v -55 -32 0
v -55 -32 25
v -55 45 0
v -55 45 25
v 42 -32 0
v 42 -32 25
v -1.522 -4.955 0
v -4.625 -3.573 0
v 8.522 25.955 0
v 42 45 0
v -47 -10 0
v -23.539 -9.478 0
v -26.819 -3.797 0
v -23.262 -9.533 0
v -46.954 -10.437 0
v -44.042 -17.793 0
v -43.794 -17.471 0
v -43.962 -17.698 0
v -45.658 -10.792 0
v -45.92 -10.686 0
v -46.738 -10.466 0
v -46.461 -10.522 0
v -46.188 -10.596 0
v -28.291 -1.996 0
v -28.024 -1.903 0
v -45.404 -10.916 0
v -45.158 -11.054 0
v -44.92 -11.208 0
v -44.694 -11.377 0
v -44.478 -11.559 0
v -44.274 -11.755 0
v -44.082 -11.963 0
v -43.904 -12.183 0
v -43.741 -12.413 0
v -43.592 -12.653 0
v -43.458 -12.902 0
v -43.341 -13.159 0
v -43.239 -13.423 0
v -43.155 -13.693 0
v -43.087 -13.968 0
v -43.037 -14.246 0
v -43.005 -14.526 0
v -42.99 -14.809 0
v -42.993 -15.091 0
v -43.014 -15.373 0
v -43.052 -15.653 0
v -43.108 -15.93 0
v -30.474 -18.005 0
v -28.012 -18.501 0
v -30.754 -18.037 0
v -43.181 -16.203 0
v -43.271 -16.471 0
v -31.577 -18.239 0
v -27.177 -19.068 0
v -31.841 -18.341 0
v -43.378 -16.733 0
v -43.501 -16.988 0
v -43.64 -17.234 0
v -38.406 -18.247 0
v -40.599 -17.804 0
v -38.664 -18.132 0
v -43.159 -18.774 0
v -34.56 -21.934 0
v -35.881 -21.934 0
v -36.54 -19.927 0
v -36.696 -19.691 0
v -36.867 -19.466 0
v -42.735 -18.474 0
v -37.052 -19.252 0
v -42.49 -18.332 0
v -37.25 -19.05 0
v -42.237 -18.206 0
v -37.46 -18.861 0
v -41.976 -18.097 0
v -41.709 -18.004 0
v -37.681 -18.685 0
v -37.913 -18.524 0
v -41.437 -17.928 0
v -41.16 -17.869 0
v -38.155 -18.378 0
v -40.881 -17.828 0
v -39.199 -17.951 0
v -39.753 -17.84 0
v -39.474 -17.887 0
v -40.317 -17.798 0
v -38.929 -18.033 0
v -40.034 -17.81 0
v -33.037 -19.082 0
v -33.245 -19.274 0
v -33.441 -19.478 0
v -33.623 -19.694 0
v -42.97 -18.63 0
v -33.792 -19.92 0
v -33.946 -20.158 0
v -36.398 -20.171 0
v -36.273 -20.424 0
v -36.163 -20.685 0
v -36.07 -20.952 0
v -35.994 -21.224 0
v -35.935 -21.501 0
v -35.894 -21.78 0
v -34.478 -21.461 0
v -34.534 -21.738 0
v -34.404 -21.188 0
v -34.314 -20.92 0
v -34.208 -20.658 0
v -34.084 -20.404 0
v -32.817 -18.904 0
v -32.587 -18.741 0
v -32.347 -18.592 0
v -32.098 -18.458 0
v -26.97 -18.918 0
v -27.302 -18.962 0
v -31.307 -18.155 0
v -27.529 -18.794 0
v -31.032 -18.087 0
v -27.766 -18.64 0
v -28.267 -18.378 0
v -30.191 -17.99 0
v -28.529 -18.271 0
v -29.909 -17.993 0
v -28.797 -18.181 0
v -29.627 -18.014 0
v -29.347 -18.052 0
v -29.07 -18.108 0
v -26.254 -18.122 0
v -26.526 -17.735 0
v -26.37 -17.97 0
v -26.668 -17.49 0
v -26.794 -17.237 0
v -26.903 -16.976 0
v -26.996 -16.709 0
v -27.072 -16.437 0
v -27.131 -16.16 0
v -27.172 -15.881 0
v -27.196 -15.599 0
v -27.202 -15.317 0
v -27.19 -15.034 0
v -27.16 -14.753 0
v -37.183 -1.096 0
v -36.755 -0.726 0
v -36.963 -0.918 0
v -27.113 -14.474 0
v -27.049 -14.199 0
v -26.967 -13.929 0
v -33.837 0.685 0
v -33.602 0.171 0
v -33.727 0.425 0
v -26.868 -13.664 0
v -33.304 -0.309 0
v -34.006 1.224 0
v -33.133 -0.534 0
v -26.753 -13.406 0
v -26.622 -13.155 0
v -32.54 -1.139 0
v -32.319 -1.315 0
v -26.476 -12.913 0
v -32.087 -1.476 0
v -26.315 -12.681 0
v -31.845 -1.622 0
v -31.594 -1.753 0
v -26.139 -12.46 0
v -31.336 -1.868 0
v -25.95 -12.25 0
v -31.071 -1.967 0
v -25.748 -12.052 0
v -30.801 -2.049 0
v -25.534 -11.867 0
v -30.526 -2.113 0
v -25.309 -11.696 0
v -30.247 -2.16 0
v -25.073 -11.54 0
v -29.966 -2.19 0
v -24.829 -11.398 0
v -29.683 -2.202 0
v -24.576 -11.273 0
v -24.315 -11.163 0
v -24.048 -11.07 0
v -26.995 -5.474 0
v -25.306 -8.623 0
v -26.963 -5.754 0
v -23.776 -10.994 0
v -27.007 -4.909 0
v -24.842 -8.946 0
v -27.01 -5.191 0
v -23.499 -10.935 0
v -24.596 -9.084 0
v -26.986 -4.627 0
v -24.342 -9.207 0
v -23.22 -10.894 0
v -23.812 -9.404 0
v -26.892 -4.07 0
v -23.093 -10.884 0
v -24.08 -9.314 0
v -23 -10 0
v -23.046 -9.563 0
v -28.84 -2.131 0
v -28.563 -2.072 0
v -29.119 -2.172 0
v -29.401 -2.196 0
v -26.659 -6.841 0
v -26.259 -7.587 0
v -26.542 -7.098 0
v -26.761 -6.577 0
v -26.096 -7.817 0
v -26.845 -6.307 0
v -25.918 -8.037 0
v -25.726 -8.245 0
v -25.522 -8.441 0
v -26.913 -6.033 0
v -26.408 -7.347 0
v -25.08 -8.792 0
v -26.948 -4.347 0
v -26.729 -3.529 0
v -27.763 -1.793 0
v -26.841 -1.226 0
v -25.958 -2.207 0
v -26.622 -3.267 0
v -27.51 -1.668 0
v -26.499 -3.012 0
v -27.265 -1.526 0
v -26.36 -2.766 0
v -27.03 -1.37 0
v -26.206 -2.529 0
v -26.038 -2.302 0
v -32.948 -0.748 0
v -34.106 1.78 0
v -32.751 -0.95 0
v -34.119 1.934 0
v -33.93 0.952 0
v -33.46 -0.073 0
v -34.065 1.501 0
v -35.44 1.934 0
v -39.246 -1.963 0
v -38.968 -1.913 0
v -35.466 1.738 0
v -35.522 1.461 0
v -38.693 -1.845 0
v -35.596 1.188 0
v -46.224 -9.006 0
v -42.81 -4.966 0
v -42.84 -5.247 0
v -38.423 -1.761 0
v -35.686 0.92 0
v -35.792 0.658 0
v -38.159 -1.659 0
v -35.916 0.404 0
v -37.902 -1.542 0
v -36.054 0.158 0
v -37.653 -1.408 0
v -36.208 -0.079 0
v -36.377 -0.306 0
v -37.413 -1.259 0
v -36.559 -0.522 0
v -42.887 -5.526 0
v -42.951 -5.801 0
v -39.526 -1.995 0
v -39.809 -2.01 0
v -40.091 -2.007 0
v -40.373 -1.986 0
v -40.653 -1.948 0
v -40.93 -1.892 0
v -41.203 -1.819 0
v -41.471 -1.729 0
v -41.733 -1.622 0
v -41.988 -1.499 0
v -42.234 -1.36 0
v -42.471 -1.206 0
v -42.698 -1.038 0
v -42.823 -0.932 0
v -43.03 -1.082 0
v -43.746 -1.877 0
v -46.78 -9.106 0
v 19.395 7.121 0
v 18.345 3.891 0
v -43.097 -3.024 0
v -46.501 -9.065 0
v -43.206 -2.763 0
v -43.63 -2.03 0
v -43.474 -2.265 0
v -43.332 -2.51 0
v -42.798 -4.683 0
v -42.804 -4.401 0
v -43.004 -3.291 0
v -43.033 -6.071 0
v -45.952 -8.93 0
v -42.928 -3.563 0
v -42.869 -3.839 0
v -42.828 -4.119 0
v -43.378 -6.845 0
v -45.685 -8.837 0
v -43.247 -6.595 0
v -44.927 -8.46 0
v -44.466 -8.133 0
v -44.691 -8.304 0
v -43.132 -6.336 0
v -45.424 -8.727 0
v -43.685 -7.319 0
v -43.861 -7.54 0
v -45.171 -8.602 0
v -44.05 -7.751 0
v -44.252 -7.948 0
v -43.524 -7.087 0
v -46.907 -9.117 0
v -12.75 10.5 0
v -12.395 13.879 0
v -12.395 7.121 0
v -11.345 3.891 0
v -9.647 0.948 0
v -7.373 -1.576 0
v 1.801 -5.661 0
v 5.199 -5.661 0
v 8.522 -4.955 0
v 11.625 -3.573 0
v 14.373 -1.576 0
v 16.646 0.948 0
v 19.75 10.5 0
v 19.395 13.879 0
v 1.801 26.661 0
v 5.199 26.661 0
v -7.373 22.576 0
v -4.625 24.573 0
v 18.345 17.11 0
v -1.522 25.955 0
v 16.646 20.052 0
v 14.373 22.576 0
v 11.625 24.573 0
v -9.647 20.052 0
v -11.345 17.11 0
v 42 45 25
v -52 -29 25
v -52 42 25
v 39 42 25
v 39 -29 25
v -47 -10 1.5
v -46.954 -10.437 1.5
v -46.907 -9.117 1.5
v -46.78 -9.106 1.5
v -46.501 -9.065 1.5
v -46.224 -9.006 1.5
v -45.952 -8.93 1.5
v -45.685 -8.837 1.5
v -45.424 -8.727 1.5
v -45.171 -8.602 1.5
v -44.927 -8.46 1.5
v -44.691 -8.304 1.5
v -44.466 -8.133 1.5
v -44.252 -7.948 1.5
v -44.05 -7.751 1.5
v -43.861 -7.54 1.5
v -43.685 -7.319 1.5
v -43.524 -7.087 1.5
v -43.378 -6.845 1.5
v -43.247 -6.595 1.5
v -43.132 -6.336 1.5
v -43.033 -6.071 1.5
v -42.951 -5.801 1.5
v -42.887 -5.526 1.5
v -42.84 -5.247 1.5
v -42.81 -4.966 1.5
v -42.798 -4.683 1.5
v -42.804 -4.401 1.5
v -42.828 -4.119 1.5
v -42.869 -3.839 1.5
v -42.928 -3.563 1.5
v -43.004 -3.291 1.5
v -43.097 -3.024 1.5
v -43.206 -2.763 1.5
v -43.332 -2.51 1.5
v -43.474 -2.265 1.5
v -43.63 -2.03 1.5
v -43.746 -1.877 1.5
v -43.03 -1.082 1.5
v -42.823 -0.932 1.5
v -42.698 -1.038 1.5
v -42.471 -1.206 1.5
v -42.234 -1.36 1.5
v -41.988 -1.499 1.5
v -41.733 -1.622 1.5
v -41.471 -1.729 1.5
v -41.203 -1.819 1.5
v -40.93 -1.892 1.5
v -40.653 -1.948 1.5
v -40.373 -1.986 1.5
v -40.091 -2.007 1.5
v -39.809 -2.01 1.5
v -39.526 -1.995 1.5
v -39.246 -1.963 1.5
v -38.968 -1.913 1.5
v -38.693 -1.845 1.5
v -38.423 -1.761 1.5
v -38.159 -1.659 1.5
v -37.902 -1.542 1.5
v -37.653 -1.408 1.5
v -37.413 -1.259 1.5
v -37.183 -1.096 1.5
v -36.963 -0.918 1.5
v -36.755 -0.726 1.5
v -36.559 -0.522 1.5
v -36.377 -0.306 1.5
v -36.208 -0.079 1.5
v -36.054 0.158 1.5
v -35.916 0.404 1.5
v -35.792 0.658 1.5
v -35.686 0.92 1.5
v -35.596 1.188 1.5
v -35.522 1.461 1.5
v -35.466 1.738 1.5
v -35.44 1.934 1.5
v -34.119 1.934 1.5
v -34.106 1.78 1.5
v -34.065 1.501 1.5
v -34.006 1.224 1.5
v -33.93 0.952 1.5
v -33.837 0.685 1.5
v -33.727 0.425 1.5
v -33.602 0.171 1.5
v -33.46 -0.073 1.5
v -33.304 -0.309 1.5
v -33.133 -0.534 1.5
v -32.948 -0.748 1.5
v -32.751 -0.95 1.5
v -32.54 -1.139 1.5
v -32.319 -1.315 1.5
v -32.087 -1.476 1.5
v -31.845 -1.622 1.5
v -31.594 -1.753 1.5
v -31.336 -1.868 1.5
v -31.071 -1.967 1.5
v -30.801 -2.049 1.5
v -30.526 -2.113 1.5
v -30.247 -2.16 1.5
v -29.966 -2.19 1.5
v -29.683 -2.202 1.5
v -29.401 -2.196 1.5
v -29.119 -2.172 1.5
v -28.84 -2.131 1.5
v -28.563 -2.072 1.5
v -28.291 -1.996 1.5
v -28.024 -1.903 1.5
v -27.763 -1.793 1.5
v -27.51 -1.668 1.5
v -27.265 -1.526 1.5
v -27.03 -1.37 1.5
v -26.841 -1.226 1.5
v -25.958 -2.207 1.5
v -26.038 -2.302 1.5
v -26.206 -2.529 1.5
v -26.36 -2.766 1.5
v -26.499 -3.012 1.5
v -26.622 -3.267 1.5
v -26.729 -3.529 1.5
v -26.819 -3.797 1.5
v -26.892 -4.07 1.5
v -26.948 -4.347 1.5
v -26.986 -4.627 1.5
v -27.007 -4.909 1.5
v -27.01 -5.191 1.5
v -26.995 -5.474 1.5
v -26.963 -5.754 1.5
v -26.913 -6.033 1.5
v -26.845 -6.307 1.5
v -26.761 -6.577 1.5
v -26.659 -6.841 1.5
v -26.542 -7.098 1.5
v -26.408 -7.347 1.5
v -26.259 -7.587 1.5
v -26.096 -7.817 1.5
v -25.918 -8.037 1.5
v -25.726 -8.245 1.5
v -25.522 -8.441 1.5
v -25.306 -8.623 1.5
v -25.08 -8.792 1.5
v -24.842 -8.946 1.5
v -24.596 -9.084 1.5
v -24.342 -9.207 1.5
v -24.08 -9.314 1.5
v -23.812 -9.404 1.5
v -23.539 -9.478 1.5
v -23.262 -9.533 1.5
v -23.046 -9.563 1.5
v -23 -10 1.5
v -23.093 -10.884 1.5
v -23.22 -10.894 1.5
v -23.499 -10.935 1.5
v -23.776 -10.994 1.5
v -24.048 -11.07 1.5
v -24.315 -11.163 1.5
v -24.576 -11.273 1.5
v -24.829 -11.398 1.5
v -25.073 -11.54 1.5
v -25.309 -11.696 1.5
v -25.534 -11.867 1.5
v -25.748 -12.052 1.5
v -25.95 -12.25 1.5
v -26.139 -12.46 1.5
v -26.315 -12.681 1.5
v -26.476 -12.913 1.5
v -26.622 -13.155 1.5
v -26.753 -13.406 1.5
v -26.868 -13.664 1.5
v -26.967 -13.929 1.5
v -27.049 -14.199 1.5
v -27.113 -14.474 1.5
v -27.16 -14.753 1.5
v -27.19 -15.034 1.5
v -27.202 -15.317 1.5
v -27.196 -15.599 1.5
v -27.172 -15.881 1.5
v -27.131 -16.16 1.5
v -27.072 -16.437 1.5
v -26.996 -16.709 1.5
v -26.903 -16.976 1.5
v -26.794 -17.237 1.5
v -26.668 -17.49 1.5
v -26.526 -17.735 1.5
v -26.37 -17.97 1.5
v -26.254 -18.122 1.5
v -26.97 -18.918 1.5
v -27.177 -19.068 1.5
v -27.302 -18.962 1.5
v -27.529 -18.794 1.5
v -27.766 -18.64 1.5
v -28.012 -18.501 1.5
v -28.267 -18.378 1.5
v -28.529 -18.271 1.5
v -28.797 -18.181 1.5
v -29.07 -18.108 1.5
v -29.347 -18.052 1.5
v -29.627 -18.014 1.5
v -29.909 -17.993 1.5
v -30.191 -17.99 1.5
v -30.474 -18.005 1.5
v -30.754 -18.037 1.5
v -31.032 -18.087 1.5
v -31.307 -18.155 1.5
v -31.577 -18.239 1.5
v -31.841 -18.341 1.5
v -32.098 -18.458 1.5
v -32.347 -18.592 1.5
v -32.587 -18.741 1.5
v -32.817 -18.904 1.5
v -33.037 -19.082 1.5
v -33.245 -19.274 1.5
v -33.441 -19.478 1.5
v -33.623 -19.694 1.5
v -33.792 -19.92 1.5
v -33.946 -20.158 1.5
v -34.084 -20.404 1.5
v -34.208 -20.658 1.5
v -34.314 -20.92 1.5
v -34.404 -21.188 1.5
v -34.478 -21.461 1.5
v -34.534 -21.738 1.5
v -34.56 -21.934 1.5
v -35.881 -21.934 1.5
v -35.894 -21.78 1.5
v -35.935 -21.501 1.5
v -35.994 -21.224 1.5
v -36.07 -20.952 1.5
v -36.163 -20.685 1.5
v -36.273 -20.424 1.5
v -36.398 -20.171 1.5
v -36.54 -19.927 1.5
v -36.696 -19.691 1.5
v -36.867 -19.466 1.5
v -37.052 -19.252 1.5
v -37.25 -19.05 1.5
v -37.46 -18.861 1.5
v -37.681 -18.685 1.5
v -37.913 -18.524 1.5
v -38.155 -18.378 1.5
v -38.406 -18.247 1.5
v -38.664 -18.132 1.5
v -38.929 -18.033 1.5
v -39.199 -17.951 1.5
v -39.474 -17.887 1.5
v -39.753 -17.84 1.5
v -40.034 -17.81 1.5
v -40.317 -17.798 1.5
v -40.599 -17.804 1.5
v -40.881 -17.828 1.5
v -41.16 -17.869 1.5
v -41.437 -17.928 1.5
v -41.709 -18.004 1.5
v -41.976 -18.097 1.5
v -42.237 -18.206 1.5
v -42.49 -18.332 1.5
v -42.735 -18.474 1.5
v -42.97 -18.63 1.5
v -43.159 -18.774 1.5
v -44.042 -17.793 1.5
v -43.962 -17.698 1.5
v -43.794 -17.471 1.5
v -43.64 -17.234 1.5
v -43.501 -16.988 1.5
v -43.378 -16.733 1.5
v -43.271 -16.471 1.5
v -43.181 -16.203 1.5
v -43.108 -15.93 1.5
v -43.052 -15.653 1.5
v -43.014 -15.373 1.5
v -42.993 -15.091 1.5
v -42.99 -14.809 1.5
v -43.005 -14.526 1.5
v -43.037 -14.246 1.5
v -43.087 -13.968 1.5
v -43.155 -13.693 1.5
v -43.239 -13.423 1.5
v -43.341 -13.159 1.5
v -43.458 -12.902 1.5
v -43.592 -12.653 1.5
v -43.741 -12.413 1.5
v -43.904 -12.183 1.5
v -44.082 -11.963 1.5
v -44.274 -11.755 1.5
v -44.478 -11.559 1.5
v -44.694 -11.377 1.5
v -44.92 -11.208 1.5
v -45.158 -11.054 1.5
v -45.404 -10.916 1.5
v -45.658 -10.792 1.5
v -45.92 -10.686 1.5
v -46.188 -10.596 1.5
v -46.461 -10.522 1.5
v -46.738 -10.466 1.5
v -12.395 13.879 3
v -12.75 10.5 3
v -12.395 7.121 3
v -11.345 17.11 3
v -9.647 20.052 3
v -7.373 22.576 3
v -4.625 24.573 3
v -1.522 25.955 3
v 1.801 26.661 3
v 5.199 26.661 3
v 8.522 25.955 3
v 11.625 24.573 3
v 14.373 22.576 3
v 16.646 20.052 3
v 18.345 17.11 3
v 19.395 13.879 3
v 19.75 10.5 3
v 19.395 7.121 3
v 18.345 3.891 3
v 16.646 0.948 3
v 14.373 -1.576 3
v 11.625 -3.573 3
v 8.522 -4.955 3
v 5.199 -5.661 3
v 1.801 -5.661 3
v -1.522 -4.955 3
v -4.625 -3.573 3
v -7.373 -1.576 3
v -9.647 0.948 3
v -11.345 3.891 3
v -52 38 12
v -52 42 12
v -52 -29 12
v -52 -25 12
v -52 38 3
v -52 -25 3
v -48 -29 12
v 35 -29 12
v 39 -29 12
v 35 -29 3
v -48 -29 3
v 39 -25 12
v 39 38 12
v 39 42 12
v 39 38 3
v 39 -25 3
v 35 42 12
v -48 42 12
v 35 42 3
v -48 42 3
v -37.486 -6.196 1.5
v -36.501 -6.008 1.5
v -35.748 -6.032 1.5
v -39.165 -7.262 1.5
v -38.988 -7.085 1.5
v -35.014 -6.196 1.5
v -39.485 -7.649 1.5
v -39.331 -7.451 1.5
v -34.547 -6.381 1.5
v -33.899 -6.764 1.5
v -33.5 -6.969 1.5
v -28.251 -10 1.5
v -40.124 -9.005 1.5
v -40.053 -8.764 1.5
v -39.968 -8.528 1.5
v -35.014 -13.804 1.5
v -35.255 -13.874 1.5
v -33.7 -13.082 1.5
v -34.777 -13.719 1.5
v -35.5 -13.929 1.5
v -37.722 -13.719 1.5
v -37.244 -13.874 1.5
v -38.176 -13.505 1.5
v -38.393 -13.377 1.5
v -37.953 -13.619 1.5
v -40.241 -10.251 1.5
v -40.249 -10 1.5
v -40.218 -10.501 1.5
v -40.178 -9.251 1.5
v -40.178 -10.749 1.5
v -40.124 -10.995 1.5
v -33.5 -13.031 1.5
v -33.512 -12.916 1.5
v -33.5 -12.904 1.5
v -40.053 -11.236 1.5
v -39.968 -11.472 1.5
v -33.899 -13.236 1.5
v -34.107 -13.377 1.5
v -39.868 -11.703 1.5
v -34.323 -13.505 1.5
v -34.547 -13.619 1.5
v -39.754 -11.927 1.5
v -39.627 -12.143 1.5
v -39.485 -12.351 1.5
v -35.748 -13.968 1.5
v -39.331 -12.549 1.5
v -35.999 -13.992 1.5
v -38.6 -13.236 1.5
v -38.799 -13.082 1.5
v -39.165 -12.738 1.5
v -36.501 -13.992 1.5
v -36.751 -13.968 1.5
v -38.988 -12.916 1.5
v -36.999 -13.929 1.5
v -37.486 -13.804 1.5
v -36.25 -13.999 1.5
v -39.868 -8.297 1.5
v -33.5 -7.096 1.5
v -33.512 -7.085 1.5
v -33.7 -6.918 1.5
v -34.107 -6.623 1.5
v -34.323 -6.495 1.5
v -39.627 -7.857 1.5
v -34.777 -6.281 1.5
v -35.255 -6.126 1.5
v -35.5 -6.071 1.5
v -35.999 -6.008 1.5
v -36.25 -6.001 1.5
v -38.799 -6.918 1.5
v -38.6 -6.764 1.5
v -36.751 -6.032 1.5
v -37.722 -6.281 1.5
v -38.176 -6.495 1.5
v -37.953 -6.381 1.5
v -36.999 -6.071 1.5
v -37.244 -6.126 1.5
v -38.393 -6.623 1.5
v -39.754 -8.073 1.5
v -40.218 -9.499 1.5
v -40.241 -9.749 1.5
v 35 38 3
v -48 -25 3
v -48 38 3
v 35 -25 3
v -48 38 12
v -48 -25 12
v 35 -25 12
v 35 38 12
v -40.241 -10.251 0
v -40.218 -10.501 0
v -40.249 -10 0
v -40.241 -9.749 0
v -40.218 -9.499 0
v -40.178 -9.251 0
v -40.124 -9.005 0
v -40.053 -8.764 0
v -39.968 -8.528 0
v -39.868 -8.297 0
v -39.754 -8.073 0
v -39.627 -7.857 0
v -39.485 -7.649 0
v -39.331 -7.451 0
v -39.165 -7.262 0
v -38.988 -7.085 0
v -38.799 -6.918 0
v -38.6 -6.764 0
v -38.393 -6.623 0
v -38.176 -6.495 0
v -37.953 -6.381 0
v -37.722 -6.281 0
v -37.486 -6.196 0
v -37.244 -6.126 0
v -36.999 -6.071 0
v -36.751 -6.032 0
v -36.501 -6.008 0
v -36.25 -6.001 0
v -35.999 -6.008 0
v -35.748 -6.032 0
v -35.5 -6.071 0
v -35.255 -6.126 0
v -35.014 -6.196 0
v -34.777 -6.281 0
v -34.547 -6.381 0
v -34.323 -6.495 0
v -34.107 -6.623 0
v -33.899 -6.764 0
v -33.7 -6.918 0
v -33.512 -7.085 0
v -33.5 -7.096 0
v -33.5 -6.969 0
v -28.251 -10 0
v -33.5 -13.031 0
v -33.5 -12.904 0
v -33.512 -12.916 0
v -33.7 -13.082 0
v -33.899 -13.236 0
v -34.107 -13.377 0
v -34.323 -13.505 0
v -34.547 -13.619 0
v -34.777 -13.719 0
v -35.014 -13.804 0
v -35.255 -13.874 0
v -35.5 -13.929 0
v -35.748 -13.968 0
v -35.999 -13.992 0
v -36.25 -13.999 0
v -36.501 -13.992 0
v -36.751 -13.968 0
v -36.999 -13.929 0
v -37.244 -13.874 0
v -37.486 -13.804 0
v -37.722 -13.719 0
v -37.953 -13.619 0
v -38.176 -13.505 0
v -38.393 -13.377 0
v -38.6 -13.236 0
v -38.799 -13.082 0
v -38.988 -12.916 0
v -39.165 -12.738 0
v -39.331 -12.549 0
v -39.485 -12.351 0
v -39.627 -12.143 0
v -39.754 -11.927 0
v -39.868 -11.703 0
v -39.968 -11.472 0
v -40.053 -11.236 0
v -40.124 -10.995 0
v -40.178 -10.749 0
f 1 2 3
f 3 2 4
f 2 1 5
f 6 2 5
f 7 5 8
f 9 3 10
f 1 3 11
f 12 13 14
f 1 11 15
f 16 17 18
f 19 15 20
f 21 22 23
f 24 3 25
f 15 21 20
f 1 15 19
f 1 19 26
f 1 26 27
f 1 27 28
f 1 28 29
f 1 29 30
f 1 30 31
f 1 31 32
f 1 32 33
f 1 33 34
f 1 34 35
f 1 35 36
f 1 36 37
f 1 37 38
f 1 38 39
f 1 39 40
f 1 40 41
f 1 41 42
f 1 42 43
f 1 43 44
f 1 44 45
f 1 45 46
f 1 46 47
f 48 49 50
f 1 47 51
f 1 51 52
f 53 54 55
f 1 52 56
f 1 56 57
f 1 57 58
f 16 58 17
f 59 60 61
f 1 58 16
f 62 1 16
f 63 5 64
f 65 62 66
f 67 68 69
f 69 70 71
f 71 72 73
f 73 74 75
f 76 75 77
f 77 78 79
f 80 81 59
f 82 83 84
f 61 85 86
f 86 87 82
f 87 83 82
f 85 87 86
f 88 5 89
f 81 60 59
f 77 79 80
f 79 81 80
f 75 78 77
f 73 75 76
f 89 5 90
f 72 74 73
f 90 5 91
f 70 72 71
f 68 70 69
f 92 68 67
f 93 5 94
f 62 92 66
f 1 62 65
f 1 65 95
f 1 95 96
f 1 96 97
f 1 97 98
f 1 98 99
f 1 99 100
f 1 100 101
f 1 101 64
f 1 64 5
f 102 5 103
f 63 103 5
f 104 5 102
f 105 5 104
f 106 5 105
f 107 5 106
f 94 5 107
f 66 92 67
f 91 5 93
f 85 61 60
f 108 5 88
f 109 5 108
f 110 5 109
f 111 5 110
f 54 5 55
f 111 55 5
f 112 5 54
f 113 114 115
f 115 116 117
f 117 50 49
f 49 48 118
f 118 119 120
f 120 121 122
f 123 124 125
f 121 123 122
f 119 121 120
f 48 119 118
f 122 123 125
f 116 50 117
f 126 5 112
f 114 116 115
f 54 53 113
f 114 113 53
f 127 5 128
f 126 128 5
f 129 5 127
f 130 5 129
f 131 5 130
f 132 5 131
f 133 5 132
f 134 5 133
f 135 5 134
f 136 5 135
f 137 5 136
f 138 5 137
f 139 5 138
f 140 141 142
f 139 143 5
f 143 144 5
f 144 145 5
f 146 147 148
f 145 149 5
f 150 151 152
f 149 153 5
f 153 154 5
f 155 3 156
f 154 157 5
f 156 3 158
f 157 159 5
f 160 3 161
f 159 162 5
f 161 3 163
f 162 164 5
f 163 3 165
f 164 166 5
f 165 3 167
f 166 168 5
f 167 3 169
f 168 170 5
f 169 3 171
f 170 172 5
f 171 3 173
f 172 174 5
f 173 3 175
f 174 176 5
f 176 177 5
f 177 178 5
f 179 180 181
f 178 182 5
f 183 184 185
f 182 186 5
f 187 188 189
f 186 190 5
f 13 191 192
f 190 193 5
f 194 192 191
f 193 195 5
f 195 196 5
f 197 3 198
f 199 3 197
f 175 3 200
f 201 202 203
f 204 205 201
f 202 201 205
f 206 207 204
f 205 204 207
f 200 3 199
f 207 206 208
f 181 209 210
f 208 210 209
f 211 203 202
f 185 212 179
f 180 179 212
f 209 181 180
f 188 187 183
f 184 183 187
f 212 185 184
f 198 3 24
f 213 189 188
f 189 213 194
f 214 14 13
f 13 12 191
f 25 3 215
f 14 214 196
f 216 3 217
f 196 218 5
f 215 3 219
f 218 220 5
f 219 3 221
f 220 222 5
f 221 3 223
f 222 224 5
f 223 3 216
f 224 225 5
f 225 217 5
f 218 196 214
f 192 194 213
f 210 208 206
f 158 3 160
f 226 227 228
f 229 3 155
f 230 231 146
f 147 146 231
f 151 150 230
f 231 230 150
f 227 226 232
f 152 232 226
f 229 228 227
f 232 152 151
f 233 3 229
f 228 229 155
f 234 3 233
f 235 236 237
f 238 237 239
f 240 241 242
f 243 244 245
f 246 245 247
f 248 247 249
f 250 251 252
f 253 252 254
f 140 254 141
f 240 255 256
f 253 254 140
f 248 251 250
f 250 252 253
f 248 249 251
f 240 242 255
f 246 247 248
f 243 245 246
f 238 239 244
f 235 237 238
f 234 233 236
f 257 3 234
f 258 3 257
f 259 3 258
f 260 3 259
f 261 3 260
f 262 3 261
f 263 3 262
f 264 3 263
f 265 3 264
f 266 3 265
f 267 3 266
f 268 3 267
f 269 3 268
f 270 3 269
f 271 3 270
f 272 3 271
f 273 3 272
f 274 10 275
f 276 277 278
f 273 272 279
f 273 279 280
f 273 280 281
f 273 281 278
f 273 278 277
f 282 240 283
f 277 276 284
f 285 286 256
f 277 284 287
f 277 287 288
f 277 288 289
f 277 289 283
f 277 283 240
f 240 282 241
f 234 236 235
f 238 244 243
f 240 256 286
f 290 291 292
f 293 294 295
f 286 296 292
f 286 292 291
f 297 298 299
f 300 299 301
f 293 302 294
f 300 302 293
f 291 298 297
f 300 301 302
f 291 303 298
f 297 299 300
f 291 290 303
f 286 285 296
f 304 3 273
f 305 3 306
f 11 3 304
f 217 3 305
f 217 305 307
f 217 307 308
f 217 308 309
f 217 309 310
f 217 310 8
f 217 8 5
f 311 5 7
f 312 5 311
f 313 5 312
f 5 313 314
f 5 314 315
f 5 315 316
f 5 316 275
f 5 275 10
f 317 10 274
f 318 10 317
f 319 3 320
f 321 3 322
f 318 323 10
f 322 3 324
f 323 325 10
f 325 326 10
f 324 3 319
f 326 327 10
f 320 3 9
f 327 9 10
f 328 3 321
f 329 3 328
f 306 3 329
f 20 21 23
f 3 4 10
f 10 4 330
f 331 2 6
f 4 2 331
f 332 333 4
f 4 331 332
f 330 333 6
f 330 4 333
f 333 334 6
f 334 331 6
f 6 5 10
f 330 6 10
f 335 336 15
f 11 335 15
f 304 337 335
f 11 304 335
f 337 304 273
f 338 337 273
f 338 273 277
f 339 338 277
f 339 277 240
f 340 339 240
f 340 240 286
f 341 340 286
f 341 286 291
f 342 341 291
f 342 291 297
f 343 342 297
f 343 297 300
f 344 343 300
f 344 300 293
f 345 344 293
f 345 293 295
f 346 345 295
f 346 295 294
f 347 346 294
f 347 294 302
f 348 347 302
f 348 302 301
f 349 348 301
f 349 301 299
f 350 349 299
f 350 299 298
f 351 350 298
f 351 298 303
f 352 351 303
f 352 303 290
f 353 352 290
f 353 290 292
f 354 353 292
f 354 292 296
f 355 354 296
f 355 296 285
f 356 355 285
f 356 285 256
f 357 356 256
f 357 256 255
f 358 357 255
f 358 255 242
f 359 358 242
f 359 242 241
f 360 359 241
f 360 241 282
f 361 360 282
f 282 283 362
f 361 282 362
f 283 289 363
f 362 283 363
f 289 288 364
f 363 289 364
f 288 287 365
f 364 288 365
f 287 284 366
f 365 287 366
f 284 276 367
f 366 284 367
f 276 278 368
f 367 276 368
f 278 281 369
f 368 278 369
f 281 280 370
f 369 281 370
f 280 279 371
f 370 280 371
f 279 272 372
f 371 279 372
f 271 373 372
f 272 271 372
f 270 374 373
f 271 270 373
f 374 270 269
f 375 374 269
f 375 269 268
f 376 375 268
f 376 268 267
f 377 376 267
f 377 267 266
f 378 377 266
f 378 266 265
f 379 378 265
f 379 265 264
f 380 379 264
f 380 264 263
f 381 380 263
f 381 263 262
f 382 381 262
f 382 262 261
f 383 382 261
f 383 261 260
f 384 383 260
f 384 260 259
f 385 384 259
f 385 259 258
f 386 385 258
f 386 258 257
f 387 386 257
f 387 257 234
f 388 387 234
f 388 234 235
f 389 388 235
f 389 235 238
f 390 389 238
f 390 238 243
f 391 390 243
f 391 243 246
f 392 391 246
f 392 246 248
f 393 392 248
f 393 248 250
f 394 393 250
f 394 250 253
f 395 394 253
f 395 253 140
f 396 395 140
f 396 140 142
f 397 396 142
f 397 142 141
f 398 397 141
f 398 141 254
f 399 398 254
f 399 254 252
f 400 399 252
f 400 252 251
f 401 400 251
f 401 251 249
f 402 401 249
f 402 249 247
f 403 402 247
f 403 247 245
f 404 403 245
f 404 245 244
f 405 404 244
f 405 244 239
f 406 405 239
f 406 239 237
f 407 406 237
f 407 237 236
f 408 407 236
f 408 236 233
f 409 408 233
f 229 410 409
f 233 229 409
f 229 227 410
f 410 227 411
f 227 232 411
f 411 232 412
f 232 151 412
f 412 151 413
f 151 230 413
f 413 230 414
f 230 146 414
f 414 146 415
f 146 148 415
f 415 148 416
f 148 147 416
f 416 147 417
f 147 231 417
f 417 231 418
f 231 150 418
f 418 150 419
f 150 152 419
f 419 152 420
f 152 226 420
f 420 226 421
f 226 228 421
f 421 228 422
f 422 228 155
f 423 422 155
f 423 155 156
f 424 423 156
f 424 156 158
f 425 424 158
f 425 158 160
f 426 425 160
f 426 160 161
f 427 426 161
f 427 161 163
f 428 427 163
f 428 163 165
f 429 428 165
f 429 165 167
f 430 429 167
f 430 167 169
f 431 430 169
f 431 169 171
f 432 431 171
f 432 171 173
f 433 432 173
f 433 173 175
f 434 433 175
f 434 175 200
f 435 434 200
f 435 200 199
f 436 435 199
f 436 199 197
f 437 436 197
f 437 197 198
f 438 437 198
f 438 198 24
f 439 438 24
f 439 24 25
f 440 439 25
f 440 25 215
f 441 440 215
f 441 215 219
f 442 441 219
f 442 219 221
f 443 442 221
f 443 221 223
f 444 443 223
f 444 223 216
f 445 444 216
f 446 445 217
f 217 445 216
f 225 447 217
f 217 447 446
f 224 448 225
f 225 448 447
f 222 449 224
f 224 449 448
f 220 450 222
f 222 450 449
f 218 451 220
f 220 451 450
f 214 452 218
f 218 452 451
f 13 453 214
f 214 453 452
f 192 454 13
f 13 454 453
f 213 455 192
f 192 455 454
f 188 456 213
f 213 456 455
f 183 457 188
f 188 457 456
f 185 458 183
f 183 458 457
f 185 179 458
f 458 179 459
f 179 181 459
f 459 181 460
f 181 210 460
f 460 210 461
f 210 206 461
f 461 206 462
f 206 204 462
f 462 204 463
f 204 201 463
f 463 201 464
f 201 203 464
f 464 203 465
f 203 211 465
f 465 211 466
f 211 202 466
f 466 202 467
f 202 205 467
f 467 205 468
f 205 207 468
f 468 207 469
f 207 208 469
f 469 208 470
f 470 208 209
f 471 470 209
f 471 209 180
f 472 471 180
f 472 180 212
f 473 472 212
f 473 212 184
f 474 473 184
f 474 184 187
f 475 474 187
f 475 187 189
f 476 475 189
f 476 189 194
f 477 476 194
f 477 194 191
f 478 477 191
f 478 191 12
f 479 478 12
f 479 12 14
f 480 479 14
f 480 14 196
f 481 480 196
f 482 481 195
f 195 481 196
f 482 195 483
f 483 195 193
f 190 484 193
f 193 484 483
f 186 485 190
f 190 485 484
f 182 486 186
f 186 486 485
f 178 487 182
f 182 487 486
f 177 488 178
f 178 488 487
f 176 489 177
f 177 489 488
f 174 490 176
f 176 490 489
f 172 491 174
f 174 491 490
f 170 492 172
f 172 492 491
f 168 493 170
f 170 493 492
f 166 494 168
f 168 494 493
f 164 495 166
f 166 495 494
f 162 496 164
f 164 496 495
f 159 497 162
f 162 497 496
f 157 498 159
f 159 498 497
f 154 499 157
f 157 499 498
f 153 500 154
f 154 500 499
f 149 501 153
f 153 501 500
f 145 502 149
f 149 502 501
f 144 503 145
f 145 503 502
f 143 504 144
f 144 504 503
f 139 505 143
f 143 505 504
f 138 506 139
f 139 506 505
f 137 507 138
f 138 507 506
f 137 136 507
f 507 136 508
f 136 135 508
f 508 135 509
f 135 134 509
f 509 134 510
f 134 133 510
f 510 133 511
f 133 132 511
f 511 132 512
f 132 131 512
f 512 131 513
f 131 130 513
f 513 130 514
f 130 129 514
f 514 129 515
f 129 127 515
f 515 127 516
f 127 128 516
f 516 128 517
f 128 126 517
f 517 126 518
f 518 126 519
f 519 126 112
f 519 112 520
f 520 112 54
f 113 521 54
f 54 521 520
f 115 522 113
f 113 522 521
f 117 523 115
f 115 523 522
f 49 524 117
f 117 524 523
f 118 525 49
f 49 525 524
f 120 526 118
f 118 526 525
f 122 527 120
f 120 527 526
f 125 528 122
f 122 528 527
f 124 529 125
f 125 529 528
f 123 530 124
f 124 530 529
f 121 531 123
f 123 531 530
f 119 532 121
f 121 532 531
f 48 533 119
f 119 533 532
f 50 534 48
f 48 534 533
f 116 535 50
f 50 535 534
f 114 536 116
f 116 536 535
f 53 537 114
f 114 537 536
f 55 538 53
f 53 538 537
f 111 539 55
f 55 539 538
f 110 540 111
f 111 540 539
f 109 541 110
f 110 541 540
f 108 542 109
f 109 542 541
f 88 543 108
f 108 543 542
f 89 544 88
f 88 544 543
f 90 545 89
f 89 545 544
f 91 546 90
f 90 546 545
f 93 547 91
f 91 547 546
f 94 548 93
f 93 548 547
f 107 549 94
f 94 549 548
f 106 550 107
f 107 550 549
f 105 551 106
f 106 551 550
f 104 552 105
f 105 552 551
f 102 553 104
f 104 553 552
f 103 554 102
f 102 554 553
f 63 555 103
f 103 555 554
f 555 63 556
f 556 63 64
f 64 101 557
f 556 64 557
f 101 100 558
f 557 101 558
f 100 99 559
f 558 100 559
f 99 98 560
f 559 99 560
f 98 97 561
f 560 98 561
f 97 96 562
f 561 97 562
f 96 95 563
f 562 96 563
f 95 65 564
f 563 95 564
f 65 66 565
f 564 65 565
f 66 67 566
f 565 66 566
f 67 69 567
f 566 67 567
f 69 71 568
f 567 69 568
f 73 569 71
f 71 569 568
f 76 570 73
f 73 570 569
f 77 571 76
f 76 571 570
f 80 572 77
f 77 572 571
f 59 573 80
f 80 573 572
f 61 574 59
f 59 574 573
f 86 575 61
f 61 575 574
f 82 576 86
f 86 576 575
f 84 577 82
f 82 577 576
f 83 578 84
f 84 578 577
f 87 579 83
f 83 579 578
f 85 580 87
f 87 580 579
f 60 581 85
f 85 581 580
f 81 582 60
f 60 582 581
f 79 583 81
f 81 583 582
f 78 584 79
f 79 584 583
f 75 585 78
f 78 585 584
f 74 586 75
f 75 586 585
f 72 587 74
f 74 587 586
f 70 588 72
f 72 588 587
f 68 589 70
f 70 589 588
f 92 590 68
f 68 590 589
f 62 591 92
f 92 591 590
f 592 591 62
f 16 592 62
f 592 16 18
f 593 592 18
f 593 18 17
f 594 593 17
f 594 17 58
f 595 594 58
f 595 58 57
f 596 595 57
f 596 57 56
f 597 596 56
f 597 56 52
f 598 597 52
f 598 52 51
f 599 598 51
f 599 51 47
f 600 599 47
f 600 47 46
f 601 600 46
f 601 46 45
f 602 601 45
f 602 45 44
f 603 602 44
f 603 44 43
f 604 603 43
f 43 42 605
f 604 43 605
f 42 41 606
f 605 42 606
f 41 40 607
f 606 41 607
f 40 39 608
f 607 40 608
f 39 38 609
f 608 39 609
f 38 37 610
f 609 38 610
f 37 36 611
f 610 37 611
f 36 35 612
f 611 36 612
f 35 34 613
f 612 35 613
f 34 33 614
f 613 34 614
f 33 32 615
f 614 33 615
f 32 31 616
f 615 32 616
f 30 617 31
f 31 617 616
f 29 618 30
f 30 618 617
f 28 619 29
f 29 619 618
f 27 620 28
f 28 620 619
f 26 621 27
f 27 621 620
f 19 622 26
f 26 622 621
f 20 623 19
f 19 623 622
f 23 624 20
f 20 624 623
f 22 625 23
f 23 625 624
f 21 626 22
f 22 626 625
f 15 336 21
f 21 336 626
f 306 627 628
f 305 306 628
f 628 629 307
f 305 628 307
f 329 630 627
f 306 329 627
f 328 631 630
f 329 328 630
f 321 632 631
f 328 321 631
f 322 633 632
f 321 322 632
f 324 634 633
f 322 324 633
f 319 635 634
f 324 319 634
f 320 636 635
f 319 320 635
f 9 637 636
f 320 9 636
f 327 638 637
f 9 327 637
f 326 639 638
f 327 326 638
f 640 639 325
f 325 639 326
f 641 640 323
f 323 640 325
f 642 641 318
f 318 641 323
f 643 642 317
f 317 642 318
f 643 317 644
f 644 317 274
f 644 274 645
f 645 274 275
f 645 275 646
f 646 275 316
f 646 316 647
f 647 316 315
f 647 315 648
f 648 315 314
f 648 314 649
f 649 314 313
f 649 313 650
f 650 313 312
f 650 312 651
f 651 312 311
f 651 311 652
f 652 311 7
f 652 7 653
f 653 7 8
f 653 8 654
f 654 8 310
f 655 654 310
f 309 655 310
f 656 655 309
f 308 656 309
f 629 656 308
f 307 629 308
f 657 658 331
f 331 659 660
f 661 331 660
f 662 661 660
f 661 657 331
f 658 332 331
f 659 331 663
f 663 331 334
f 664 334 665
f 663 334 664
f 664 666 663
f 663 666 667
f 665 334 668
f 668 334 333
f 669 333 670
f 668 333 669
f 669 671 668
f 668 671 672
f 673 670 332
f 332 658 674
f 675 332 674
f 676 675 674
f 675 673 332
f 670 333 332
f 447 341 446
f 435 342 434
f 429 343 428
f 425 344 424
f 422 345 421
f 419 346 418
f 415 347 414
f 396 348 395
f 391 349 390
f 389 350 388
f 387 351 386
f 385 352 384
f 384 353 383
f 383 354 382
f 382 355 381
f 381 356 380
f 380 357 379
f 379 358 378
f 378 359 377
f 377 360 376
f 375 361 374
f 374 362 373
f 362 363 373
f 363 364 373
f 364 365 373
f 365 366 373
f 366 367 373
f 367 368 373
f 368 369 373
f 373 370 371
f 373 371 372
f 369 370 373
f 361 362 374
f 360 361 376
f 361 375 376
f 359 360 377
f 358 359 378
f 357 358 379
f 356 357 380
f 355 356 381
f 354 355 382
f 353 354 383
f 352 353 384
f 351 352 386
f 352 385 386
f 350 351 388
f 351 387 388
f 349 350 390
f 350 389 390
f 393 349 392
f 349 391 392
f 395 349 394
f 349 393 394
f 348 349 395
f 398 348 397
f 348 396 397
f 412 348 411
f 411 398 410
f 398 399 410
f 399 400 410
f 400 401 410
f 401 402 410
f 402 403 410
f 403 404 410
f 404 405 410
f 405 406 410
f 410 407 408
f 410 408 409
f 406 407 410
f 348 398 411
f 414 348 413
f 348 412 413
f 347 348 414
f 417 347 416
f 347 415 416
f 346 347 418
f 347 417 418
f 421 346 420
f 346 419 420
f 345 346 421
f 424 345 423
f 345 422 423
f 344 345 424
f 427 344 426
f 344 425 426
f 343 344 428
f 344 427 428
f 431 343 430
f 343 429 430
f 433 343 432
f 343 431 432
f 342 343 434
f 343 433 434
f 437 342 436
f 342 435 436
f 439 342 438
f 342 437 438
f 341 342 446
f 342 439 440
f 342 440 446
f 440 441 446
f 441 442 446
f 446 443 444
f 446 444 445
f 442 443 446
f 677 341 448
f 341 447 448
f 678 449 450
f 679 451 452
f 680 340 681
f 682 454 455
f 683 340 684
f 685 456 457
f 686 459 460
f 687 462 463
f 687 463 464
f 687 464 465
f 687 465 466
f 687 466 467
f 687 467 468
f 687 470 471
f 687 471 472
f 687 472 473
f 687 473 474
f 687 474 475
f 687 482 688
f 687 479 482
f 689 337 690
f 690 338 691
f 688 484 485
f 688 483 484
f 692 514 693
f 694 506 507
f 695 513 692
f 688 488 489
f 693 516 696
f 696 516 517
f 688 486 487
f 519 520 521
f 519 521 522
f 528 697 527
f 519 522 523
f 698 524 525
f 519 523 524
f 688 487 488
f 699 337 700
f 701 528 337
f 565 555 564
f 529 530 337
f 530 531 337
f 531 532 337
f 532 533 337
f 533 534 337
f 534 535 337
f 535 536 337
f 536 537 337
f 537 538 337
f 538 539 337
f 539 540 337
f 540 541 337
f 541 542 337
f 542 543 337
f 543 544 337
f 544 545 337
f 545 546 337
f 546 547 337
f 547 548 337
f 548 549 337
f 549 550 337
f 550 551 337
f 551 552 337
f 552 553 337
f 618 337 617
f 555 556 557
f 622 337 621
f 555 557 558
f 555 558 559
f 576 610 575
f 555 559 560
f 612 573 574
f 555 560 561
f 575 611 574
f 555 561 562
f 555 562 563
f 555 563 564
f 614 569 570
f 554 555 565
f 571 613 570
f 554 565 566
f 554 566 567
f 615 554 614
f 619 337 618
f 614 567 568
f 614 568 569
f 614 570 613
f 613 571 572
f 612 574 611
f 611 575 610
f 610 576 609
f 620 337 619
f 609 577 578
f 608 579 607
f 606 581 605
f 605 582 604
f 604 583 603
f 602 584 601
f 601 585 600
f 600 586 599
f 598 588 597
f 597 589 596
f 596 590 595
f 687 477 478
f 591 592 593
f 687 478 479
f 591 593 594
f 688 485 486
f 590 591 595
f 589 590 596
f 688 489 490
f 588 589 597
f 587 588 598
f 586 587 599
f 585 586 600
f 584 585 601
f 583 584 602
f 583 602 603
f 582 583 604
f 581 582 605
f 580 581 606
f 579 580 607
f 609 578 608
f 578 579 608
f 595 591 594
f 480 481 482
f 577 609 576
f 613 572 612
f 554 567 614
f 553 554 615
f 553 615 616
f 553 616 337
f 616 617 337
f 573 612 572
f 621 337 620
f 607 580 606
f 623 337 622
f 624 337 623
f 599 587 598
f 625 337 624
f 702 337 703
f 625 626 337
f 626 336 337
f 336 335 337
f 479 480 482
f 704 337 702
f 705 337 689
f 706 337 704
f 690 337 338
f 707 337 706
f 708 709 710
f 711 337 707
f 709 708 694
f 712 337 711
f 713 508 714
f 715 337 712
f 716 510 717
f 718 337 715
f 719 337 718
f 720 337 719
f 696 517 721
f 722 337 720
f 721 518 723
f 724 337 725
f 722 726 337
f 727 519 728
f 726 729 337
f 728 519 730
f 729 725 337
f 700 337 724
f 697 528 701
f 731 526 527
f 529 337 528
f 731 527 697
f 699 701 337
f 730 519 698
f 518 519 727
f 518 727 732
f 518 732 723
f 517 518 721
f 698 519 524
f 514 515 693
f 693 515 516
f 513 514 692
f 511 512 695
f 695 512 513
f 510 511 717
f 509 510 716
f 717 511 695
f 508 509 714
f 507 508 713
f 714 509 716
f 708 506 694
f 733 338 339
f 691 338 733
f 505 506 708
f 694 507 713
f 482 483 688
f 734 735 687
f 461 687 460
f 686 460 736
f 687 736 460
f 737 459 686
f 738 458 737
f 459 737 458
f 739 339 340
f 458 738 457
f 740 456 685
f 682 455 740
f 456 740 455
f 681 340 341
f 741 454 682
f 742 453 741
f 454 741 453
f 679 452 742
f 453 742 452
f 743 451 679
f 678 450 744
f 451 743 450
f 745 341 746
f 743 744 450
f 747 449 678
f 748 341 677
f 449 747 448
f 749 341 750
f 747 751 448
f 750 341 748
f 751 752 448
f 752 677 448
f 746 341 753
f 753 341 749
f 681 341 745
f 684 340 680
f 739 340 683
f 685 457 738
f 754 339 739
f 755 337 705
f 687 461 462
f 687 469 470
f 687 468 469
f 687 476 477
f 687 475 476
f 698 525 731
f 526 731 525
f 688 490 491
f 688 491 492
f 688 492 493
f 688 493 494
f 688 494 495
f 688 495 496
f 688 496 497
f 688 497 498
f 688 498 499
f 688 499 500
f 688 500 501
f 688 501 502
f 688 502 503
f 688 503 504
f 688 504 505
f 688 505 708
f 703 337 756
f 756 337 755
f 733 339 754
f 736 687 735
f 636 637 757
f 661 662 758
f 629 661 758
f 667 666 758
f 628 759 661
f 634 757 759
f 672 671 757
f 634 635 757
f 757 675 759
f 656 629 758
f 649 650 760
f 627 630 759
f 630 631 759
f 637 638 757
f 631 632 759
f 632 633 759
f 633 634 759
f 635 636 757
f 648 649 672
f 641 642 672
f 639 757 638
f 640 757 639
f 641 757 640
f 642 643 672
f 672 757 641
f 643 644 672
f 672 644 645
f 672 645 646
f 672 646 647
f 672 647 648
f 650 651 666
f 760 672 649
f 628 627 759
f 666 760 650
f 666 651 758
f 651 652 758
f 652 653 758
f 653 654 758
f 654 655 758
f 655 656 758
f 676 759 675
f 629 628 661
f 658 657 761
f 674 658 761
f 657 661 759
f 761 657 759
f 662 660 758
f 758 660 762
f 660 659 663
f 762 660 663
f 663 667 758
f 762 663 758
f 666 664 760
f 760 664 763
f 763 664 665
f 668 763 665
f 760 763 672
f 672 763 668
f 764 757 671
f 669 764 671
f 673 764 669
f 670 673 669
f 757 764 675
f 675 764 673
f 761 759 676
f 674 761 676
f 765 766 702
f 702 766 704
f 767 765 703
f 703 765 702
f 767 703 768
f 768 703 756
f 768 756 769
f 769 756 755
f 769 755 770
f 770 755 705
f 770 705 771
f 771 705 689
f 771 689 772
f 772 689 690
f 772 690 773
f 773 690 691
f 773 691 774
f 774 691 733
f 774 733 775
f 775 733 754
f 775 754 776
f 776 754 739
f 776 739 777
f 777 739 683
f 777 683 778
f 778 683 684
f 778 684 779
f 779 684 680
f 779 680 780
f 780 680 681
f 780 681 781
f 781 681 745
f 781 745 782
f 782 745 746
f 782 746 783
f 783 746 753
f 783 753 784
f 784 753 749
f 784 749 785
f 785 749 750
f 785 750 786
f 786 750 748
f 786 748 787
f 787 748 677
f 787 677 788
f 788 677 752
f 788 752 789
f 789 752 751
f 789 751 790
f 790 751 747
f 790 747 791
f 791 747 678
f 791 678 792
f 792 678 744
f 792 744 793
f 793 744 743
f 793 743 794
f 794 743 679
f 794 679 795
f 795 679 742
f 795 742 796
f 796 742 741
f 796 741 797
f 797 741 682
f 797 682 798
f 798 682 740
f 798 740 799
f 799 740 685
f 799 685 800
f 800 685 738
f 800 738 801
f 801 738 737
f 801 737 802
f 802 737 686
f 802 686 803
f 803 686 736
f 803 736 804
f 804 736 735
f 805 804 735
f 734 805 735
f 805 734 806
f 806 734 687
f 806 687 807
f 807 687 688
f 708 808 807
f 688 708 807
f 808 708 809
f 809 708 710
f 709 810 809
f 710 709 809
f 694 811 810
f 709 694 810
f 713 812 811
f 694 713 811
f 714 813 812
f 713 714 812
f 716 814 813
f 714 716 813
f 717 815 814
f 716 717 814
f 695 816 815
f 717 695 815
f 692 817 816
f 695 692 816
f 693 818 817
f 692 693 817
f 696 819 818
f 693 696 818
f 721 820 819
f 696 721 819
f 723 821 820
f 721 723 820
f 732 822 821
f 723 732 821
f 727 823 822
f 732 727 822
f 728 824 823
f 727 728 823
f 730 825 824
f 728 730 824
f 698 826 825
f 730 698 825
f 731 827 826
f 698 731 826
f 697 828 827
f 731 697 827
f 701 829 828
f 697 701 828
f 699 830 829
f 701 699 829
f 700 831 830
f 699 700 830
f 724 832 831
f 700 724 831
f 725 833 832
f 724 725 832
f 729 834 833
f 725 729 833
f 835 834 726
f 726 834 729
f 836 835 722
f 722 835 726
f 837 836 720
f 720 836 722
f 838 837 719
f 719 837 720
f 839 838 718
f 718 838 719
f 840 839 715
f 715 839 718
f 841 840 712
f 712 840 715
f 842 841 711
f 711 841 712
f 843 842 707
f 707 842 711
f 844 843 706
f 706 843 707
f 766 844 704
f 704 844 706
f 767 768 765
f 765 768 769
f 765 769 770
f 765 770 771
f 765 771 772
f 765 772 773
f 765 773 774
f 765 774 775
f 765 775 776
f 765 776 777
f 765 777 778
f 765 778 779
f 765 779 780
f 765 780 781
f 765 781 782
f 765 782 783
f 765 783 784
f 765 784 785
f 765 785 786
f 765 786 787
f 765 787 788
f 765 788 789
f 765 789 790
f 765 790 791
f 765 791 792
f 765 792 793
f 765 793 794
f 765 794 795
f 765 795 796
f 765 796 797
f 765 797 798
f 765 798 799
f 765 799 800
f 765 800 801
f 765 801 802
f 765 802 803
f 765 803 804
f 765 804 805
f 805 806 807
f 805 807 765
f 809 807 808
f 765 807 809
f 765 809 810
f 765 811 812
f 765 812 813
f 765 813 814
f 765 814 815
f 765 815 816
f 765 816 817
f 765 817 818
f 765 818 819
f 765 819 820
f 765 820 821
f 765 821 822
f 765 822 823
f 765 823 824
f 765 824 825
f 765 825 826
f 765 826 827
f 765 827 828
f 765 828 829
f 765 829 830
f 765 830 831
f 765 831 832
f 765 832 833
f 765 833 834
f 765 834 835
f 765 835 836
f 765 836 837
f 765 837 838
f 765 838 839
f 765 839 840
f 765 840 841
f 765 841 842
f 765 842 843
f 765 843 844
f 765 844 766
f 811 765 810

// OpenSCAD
module wash4all_logo(angle,x1,y1,z1, outer_rad, logo_depth){
/* logo */
fn = 100; //yield precisely
io = 1; //smidge variable for fixing waterdrop
ld = logo_depth; //like it says
lgsr = outer_rad/2.667; //wash4all logo small circle radius
lgbr = outer_rad; //wash4all logo big circle radius
lgai = 45; //wash4all logo angle iterator
translate([x1,y1,z1]){
rotate([0,0,angle]){
difference(){

//make cylinder (which will form the body of the negative shape)
cylinder(r=lgbr,h=ld);

//cut gear teeth
for (i = [0:7]){
rotate([0,0,i*45+3]) translate([-lgbr,lgbr/2,0]) cylinder(r=lgsr, h=ld, $fn=fn, center=false);
}

//top of water drop
translate([-lgsr/2-1,0,0]) rotate([0,0,180]) cylinder(r=lgsr-io,h=ld,$fn=3,center=false);

//bottom of water drop
translate([lgsr/2-1,0,0]) cylinder(r=lgsr-io/2,h=ld,$fn=fn,center=false);
}
}
}
}

mnbh = 30;
cuvh = 42;
hh = cuvh - mnbh;
ocr = 16;
wt = 3;
difference(){
difference(){
	union(){
		translate([-55,-32,0]) cube([97,77,wt]);
		translate([-55,42,0]) cube([97,wt,25]);
		translate([39,-32,0]) cube([wt,77,25]);
		translate([-55,-32,0]) cube([97,wt,25]);
		translate([-55,-32,0]) cube([wt,77,25]);
	
		translate([-52,-29,0]) cube([4,4,12]);
		translate([-52,38,0]) cube([4,4,12]);
		translate([35,-29,0]) cube([4,4,12]);
		translate([35,38,0]) cube([4,4,12]);
	}
	translate([3.5,10.5,0]) cylinder(r=16.25,h=wt);
}


wash4all_logo(180,-35,-10,0, 12, 1.5);
}
